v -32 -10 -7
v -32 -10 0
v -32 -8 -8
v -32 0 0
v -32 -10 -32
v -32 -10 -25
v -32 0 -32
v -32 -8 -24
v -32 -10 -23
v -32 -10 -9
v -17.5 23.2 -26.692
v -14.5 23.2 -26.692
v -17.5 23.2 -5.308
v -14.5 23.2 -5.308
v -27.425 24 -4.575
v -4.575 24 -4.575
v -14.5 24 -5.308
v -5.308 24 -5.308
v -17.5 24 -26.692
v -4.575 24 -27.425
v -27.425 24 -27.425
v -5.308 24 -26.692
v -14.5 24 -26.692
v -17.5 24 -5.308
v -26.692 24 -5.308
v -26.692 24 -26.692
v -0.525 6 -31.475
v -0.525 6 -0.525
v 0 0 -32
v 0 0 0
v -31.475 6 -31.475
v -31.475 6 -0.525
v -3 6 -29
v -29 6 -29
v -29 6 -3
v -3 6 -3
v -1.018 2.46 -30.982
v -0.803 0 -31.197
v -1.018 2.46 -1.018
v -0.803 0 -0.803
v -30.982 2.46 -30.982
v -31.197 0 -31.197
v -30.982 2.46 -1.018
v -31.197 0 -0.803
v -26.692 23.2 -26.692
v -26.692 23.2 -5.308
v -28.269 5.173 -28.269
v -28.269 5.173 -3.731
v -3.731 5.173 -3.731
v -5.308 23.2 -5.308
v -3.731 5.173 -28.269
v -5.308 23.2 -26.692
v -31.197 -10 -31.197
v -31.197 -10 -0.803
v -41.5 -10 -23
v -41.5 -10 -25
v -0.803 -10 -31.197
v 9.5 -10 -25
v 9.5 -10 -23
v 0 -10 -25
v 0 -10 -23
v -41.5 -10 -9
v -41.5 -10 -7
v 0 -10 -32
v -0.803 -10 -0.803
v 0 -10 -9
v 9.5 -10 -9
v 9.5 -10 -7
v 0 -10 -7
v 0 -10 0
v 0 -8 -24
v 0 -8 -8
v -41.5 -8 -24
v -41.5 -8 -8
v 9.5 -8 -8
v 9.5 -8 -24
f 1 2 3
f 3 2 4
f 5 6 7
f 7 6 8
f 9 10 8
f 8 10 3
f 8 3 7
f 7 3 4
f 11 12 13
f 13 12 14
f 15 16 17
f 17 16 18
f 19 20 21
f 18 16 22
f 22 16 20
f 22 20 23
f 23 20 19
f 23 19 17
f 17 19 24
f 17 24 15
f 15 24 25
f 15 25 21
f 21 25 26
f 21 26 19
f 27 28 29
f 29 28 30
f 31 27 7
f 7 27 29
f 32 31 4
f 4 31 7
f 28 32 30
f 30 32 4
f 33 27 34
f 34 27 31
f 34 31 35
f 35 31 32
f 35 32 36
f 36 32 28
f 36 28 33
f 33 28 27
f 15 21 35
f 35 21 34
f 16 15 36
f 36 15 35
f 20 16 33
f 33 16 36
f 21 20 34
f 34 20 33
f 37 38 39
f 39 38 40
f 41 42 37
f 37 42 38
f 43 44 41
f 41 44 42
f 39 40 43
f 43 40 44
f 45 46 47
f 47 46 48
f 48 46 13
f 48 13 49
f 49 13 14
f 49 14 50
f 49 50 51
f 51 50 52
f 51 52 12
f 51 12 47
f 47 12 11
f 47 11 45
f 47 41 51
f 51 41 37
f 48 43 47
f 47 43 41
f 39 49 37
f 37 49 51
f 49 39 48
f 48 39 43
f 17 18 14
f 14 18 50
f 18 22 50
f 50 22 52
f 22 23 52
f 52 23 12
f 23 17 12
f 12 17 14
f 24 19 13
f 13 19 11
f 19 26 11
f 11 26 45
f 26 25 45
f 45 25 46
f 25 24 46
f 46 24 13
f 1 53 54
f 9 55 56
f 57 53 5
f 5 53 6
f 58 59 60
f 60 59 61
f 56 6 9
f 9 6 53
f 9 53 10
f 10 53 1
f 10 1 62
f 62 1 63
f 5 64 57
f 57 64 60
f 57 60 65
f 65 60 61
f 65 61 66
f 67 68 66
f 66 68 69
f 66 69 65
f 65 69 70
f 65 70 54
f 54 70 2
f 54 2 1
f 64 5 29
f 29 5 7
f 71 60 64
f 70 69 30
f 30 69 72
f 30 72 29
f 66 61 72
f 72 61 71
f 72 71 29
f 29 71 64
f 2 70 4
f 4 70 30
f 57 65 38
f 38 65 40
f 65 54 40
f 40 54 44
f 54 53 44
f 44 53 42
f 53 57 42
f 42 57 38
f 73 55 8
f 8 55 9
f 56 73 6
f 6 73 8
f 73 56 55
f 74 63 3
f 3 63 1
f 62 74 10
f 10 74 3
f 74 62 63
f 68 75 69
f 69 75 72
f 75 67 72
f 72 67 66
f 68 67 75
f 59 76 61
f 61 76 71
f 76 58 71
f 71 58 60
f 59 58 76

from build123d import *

# Parameters (mm, degrees)
SKETCH1_W           = 32
SKETCH1_H           = 32
BOSS_EXTRUDE1_DEPTH = 6
BOSS_EXTRUDE1_TAPER = 5
SKETCH2_W           = 26
SKETCH2_H           = 26
BOSS_EXTRUDE2_DEPTH = 18
BOSS_EXTRUDE2_TAPER = 5
SHELL1_T            = -0.8
CHAMFER1_SIZE       = 2.5
CHAMFER1_SIZE_2     = 2.750157169
SKETCH3_W           = 9.192139117
SKETCH3_H           = 21.384278234
CUT_EXTRUDE1_DEPTH  = 51.855088412
SKETCH4_W           = 32
SKETCH4_H           = 32
SKETCH4_W_2         = 30.39388826
SKETCH4_H_2         = 30.39388826
BOSS_EXTRUDE3_DEPTH = 10
BOSS_EXTRUDE4_DEPTH = 9.5
BOSS_EXTRUDE5_START = -32
BOSS_EXTRUDE5_DEPTH = 9.5


with BuildPart() as part:
    # Sketch1 → Boss-Extrude1 (new body)
    with BuildSketch(Plane(origin=(0, 0, 0), x_dir=(1, 0, 0), z_dir=(0, 1, 0))):
        with Locations((-16, 16)):
            Rectangle(SKETCH1_W, SKETCH1_H)
    extrude(amount=BOSS_EXTRUDE1_DEPTH, taper=BOSS_EXTRUDE1_TAPER)

    # Sketch2 → Boss-Extrude2 (add)
    with BuildSketch(Plane(origin=(0, 6, 0), x_dir=(1, 0, 0), z_dir=(0, 1, 0))):
        with Locations((-16, 16)):
            Rectangle(SKETCH2_W, SKETCH2_H)
    extrude(amount=BOSS_EXTRUDE2_DEPTH, taper=BOSS_EXTRUDE2_TAPER)

    # Shell1
    shell1_openings = [part.faces().sort_by_distance(p)[0] for p in [
        (-16, 0, -16),
    ]]
    offset(amount=SHELL1_T, openings=shell1_openings, kind=Kind.INTERSECTION)

    # Chamfer1
    # the kernel refuses this chamfer: 2.750157169, 2.5 mm, written as the material it adds along each edge
    with BuildSketch(Plane(origin=(5.830274952, 5.2, -1.25799692), x_dir=(0, 0.030161850139926293, -0.9995450278982617), z_dir=(-1, 0, 0))) as chamfer1_piece_1_section:
        Polygon((CHAMFER1_SIZE * 0.999545027898, CHAMFER1_SIZE * 0.0301618501399), (-CHAMFER1_SIZE_2 * 0.117163164513, CHAMFER1_SIZE_2 * 0.993112678869), (0, 0), align=None)
    chamfer1_piece_1 = extrude(amount=43.660549905, mode=Mode.PRIVATE)
    chamfer1_piece_1 = split(chamfer1_piece_1, bisect_by=Plane(origin=(-1.2737044, 5.379537315, -3.779154262), z_dir=(-0.9961946980917455, -0.08715574274765792, 0)), keep=Keep.TOP, mode=Mode.PRIVATE)
    chamfer1_piece_1 = split(chamfer1_piece_1, bisect_by=Plane(origin=(-3.729971497, 5.164641789, -3.779154262), z_dir=(0.9961946980917455, 0.08715574274765821, 0)), keep=Keep.TOP, mode=Mode.PRIVATE)
    chamfer1_piece_1 = split(chamfer1_piece_1, bisect_by=Plane(origin=(-2.501837948, 5.275543614, -3.739674149), z_dir=(0, -0.08715574274765829, -0.9961946980917455)), keep=Keep.TOP, mode=Mode.PRIVATE)
    add(chamfer1_piece_1)
    with BuildSketch(Plane(origin=(5.830274952, 5.2, -1.25799692), x_dir=(0, 0.030161850139926293, -0.9995450278982617), z_dir=(-1, 0, 0))) as chamfer1_piece_2_section:
        Polygon((CHAMFER1_SIZE * 0.999545027898, CHAMFER1_SIZE * 0.0301618501399), (-CHAMFER1_SIZE_2 * 0.117163164513, CHAMFER1_SIZE_2 * 0.993112678869), (0, 0), align=None)
    chamfer1_piece_2 = extrude(amount=43.660549905, mode=Mode.PRIVATE)
    chamfer1_piece_2 = split(chamfer1_piece_2, bisect_by=Plane(origin=(-1.187972058, 4.399612159, -1.99521412), z_dir=(-0.9961946980917455, -0.08715574274765792, 0)), keep=Keep.TOP, mode=Mode.PRIVATE)
    chamfer1_piece_2 = split(chamfer1_piece_2, bisect_by=Plane(origin=(-3.644239154, 4.184716633, -1.99521412), z_dir=(0.9961946980917455, 0.08715574274765821, 0)), keep=Keep.TOP, mode=Mode.PRIVATE)
    chamfer1_piece_2 = split(chamfer1_piece_2, bisect_by=Plane(origin=(-2.416105606, 4.148173113, -3.641042011), z_dir=(0, 0.08715574274765829, 0.9961946980917455)), keep=Keep.TOP, mode=Mode.PRIVATE)
    add(chamfer1_piece_2)
    with BuildSketch(Plane(origin=(5.830274952, 5.2, -1.25799692), x_dir=(0, 0.030161850139926293, -0.9995450278982617), z_dir=(-1, 0, 0))) as chamfer1_piece_3_section:
        Polygon((CHAMFER1_SIZE * 0.999545027898, CHAMFER1_SIZE * 0.0301618501399), (-CHAMFER1_SIZE_2 * 0.117163164513, CHAMFER1_SIZE_2 * 0.993112678869), (0, 0), align=None)
    chamfer1_piece_3 = extrude(amount=43.660549905, mode=Mode.PRIVATE)
    chamfer1_piece_3 = split(chamfer1_piece_3, bisect_by=Plane(origin=(-3.747130429, 5.360769289, -1.993289961), z_dir=(-0.9961946980917455, -0.08715574274765821, 0)), keep=Keep.TOP, mode=Mode.PRIVATE)
    chamfer1_piece_3 = split(chamfer1_piece_3, bisect_by=Plane(origin=(-16, 4.144649452, -3.64073373), z_dir=(0, 0.08715574274765829, 0.9961946980917455)), keep=Keep.TOP, mode=Mode.PRIVATE)
    chamfer1_piece_3 = split(chamfer1_piece_3, bisect_by=Plane(origin=(-28.252869571, 5.360769289, -1.993289961), z_dir=(0.9961946980917455, -0.08715574274765829, 0)), keep=Keep.TOP, mode=Mode.PRIVATE)
    add(chamfer1_piece_3)
    with BuildSketch(Plane(origin=(5.830274952, 5.2, -1.25799692), x_dir=(0, 0.030161850139926293, -0.9995450278982617), z_dir=(-1, 0, 0))) as chamfer1_piece_4_section:
        Polygon((CHAMFER1_SIZE * 0.999545027898, CHAMFER1_SIZE * 0.0301618501399), (-CHAMFER1_SIZE_2 * 0.117163164513, CHAMFER1_SIZE_2 * 0.993112678869), (0, 0), align=None)
    chamfer1_piece_4 = extrude(amount=43.660549905, mode=Mode.PRIVATE)
    chamfer1_piece_4 = split(chamfer1_piece_4, bisect_by=Plane(origin=(-29.498162052, 5.275543614, -3.739674149), z_dir=(0, -0.08715574274765829, -0.9961946980917455)), keep=Keep.TOP, mode=Mode.PRIVATE)
    chamfer1_piece_4 = split(chamfer1_piece_4, bisect_by=Plane(origin=(-28.270028503, 5.164641789, -3.779154262), z_dir=(-0.9961946980917455, 0.08715574274765829, 0)), keep=Keep.TOP, mode=Mode.PRIVATE)
    chamfer1_piece_4 = split(chamfer1_piece_4, bisect_by=Plane(origin=(-30.7262956, 5.379537315, -3.779154262), z_dir=(0.9961946980917455, -0.08715574274765851, 0)), keep=Keep.TOP, mode=Mode.PRIVATE)
    add(chamfer1_piece_4)
    with BuildSketch(Plane(origin=(5.830274952, 5.2, -1.25799692), x_dir=(0, 0.030161850139926293, -0.9995450278982617), z_dir=(-1, 0, 0))) as chamfer1_piece_5_section:
        Polygon((CHAMFER1_SIZE * 0.999545027898, CHAMFER1_SIZE * 0.0301618501399), (-CHAMFER1_SIZE_2 * 0.117163164513, CHAMFER1_SIZE_2 * 0.993112678869), (0, 0), align=None)
    chamfer1_piece_5 = extrude(amount=43.660549905, mode=Mode.PRIVATE)
    chamfer1_piece_5 = split(chamfer1_piece_5, bisect_by=Plane(origin=(-29.583894394, 4.148173113, -3.641042011), z_dir=(0, 0.08715574274765829, 0.9961946980917455)), keep=Keep.TOP, mode=Mode.PRIVATE)
    chamfer1_piece_5 = split(chamfer1_piece_5, bisect_by=Plane(origin=(-28.355760846, 4.184716633, -1.99521412), z_dir=(-0.9961946980917455, 0.08715574274765829, 0)), keep=Keep.TOP, mode=Mode.PRIVATE)
    chamfer1_piece_5 = split(chamfer1_piece_5, bisect_by=Plane(origin=(-30.812027942, 4.399612159, -1.99521412), z_dir=(0.9961946980917455, -0.08715574274765851, 0)), keep=Keep.TOP, mode=Mode.PRIVATE)
    add(chamfer1_piece_5)
    with BuildSketch(Plane(origin=(-30.74200308, 5.2, 5.830274952), x_dir=(0.9995450278982617, 0.030161850139926356, 0), z_dir=(0, 0, -1))) as chamfer1_piece_6_section:
        Polygon((CHAMFER1_SIZE * 0.999545027898, CHAMFER1_SIZE * 0.0301618501399), (-CHAMFER1_SIZE_2 * 0.117163164513, CHAMFER1_SIZE_2 * 0.993112678869), (0, 0), align=None)
    chamfer1_piece_6 = extrude(amount=43.660549905, mode=Mode.PRIVATE)
    chamfer1_piece_6 = split(chamfer1_piece_6, bisect_by=Plane(origin=(-28.220845738, 5.164641789, -3.729971497), z_dir=(0, 0.08715574274765829, 0.9961946980917455)), keep=Keep.TOP, mode=Mode.PRIVATE)
    chamfer1_piece_6 = split(chamfer1_piece_6, bisect_by=Plane(origin=(-28.260325851, 5.275543614, -2.501837948), z_dir=(0.9961946980917455, -0.08715574274765829, 0)), keep=Keep.TOP, mode=Mode.PRIVATE)
    chamfer1_piece_6 = split(chamfer1_piece_6, bisect_by=Plane(origin=(-28.220845738, 5.379537315, -1.2737044), z_dir=(0, -0.08715574274765792, -0.9961946980917455)), keep=Keep.TOP, mode=Mode.PRIVATE)
    add(chamfer1_piece_6)
    with BuildSketch(Plane(origin=(-30.74200308, 5.2, 5.830274952), x_dir=(0.9995450278982617, 0.030161850139926356, 0), z_dir=(0, 0, -1))) as chamfer1_piece_7_section:
        Polygon((CHAMFER1_SIZE * 0.999545027898, CHAMFER1_SIZE * 0.0301618501399), (-CHAMFER1_SIZE_2 * 0.117163164513, CHAMFER1_SIZE_2 * 0.993112678869), (0, 0), align=None)
    chamfer1_piece_7 = extrude(amount=43.660549905, mode=Mode.PRIVATE)
    chamfer1_piece_7 = split(chamfer1_piece_7, bisect_by=Plane(origin=(-30.00478588, 4.184716633, -3.644239154), z_dir=(0, 0.08715574274765829, 0.9961946980917455)), keep=Keep.TOP, mode=Mode.PRIVATE)
    chamfer1_piece_7 = split(chamfer1_piece_7, bisect_by=Plane(origin=(-28.358957989, 4.148173113, -2.416105606), z_dir=(-0.9961946980917455, 0.08715574274765829, 0)), keep=Keep.TOP, mode=Mode.PRIVATE)
    chamfer1_piece_7 = split(chamfer1_piece_7, bisect_by=Plane(origin=(-30.00478588, 4.399612159, -1.187972058), z_dir=(0, -0.08715574274765792, -0.9961946980917455)), keep=Keep.TOP, mode=Mode.PRIVATE)
    add(chamfer1_piece_7)
    with BuildSketch(Plane(origin=(-30.74200308, 5.2, 5.830274952), x_dir=(0.9995450278982617, 0.030161850139926356, 0), z_dir=(0, 0, -1))) as chamfer1_piece_8_section:
        Polygon((CHAMFER1_SIZE * 0.999545027898, CHAMFER1_SIZE * 0.0301618501399), (-CHAMFER1_SIZE_2 * 0.117163164513, CHAMFER1_SIZE_2 * 0.993112678869), (0, 0), align=None)
    chamfer1_piece_8 = extrude(amount=43.660549905, mode=Mode.PRIVATE)
    chamfer1_piece_8 = split(chamfer1_piece_8, bisect_by=Plane(origin=(-30.006710039, 5.360769289, -28.252869571), z_dir=(0, -0.08715574274765829, 0.9961946980917455)), keep=Keep.TOP, mode=Mode.PRIVATE)
    chamfer1_piece_8 = split(chamfer1_piece_8, bisect_by=Plane(origin=(-30.006710039, 5.360769289, -3.747130429), z_dir=(0, -0.08715574274765829, -0.9961946980917455)), keep=Keep.TOP, mode=Mode.PRIVATE)
    chamfer1_piece_8 = split(chamfer1_piece_8, bisect_by=Plane(origin=(-28.35926627, 4.144649452, -16), z_dir=(-0.9961946980917455, 0.08715574274765829, 0)), keep=Keep.TOP, mode=Mode.PRIVATE)
    add(chamfer1_piece_8)
    with BuildSketch(Plane(origin=(-30.74200308, 5.2, 5.830274952), x_dir=(0.9995450278982617, 0.030161850139926356, 0), z_dir=(0, 0, -1))) as chamfer1_piece_9_section:
        Polygon((CHAMFER1_SIZE * 0.999545027898, CHAMFER1_SIZE * 0.0301618501399), (-CHAMFER1_SIZE_2 * 0.117163164513, CHAMFER1_SIZE_2 * 0.993112678869), (0, 0), align=None)
    chamfer1_piece_9 = extrude(amount=43.660549905, mode=Mode.PRIVATE)
    chamfer1_piece_9 = split(chamfer1_piece_9, bisect_by=Plane(origin=(-28.220845738, 5.379537315, -30.7262956), z_dir=(0, -0.08715574274765836, 0.9961946980917455)), keep=Keep.TOP, mode=Mode.PRIVATE)
    chamfer1_piece_9 = split(chamfer1_piece_9, bisect_by=Plane(origin=(-28.220845738, 5.164641789, -28.270028503), z_dir=(0, 0.08715574274765829, -0.9961946980917455)), keep=Keep.TOP, mode=Mode.PRIVATE)
    chamfer1_piece_9 = split(chamfer1_piece_9, bisect_by=Plane(origin=(-28.260325851, 5.275543614, -29.498162052), z_dir=(0.9961946980917455, -0.08715574274765829, 0)), keep=Keep.TOP, mode=Mode.PRIVATE)
    add(chamfer1_piece_9)
    with BuildSketch(Plane(origin=(-30.74200308, 5.2, 5.830274952), x_dir=(0.9995450278982617, 0.030161850139926356, 0), z_dir=(0, 0, -1))) as chamfer1_piece_10_section:
        Polygon((CHAMFER1_SIZE * 0.999545027898, CHAMFER1_SIZE * 0.0301618501399), (-CHAMFER1_SIZE_2 * 0.117163164513, CHAMFER1_SIZE_2 * 0.993112678869), (0, 0), align=None)
    chamfer1_piece_10 = extrude(amount=43.660549905, mode=Mode.PRIVATE)
    chamfer1_piece_10 = split(chamfer1_piece_10, bisect_by=Plane(origin=(-30.00478588, 4.399612159, -30.812027942), z_dir=(0, -0.08715574274765836, 0.9961946980917455)), keep=Keep.TOP, mode=Mode.PRIVATE)
    chamfer1_piece_10 = split(chamfer1_piece_10, bisect_by=Plane(origin=(-30.00478588, 4.184716633, -28.355760846), z_dir=(0, 0.08715574274765829, -0.9961946980917455)), keep=Keep.TOP, mode=Mode.PRIVATE)
    chamfer1_piece_10 = split(chamfer1_piece_10, bisect_by=Plane(origin=(-28.358957989, 4.148173113, -29.583894394), z_dir=(-0.9961946980917455, 0.08715574274765829, 0)), keep=Keep.TOP, mode=Mode.PRIVATE)
    add(chamfer1_piece_10)
    with BuildSketch(Plane(origin=(5.830274952, 5.2, -30.74200308), x_dir=(0, -0.9937112432628153, -0.11197305485280758), z_dir=(-1, 0, 0))) as chamfer1_piece_11_section:
        Polygon((CHAMFER1_SIZE_2 * 0.99968896676, CHAMFER1_SIZE_2 * 0.0249393220908), (-CHAMFER1_SIZE * 0.111973054853, CHAMFER1_SIZE * 0.993711243263), (0, 0), align=None)
    chamfer1_piece_11 = extrude(amount=43.660549905, mode=Mode.PRIVATE)
    chamfer1_piece_11 = split(chamfer1_piece_11, bisect_by=Plane(origin=(-1.187972058, 4.399612159, -30.00478588), z_dir=(-0.9961946980917455, -0.08715574274765792, 0)), keep=Keep.TOP, mode=Mode.PRIVATE)
    chamfer1_piece_11 = split(chamfer1_piece_11, bisect_by=Plane(origin=(-2.416105606, 4.148173113, -28.358957989), z_dir=(0, 0.08715574274765829, -0.9961946980917455)), keep=Keep.TOP, mode=Mode.PRIVATE)
    chamfer1_piece_11 = split(chamfer1_piece_11, bisect_by=Plane(origin=(-3.644239154, 4.184716633, -30.00478588), z_dir=(0.9961946980917455, 0.08715574274765821, 0)), keep=Keep.TOP, mode=Mode.PRIVATE)
    add(chamfer1_piece_11)
    with BuildSketch(Plane(origin=(5.830274952, 5.2, -30.74200308), x_dir=(0, -0.9937112432628153, -0.11197305485280758), z_dir=(-1, 0, 0))) as chamfer1_piece_12_section:
        Polygon((CHAMFER1_SIZE_2 * 0.99968896676, CHAMFER1_SIZE_2 * 0.0249393220908), (-CHAMFER1_SIZE * 0.111973054853, CHAMFER1_SIZE * 0.993711243263), (0, 0), align=None)
    chamfer1_piece_12 = extrude(amount=43.660549905, mode=Mode.PRIVATE)
    chamfer1_piece_12 = split(chamfer1_piece_12, bisect_by=Plane(origin=(-1.2737044, 5.379537315, -28.220845738), z_dir=(-0.9961946980917455, -0.08715574274765792, 0)), keep=Keep.TOP, mode=Mode.PRIVATE)
    chamfer1_piece_12 = split(chamfer1_piece_12, bisect_by=Plane(origin=(-2.501837948, 5.275543614, -28.260325851), z_dir=(0, -0.08715574274765829, 0.9961946980917455)), keep=Keep.TOP, mode=Mode.PRIVATE)
    chamfer1_piece_12 = split(chamfer1_piece_12, bisect_by=Plane(origin=(-3.729971497, 5.164641789, -28.220845738), z_dir=(0.9961946980917455, 0.08715574274765821, 0)), keep=Keep.TOP, mode=Mode.PRIVATE)
    add(chamfer1_piece_12)
    with BuildSketch(Plane(origin=(5.830274952, 5.2, -30.74200308), x_dir=(0, -0.9937112432628153, -0.11197305485280758), z_dir=(-1, 0, 0))) as chamfer1_piece_13_section:
        Polygon((CHAMFER1_SIZE_2 * 0.99968896676, CHAMFER1_SIZE_2 * 0.0249393220908), (-CHAMFER1_SIZE * 0.111973054853, CHAMFER1_SIZE * 0.993711243263), (0, 0), align=None)
    chamfer1_piece_13 = extrude(amount=43.660549905, mode=Mode.PRIVATE)
    chamfer1_piece_13 = split(chamfer1_piece_13, bisect_by=Plane(origin=(-16, 4.144649452, -28.35926627), z_dir=(0, 0.08715574274765829, -0.9961946980917455)), keep=Keep.TOP, mode=Mode.PRIVATE)
    chamfer1_piece_13 = split(chamfer1_piece_13, bisect_by=Plane(origin=(-3.747130429, 5.360769289, -30.006710039), z_dir=(-0.9961946980917455, -0.08715574274765821, 0)), keep=Keep.TOP, mode=Mode.PRIVATE)
    chamfer1_piece_13 = split(chamfer1_piece_13, bisect_by=Plane(origin=(-28.252869571, 5.360769289, -30.006710039), z_dir=(0.9961946980917455, -0.08715574274765829, 0)), keep=Keep.TOP, mode=Mode.PRIVATE)
    add(chamfer1_piece_13)
    with BuildSketch(Plane(origin=(5.830274952, 5.2, -30.74200308), x_dir=(0, -0.9937112432628153, -0.11197305485280758), z_dir=(-1, 0, 0))) as chamfer1_piece_14_section:
        Polygon((CHAMFER1_SIZE_2 * 0.99968896676, CHAMFER1_SIZE_2 * 0.0249393220908), (-CHAMFER1_SIZE * 0.111973054853, CHAMFER1_SIZE * 0.993711243263), (0, 0), align=None)
    chamfer1_piece_14 = extrude(amount=43.660549905, mode=Mode.PRIVATE)
    chamfer1_piece_14 = split(chamfer1_piece_14, bisect_by=Plane(origin=(-30.812027942, 4.399612159, -30.00478588), z_dir=(0.9961946980917455, -0.08715574274765851, 0)), keep=Keep.TOP, mode=Mode.PRIVATE)
    chamfer1_piece_14 = split(chamfer1_piece_14, bisect_by=Plane(origin=(-29.583894394, 4.148173113, -28.358957989), z_dir=(0, 0.08715574274765829, -0.9961946980917455)), keep=Keep.TOP, mode=Mode.PRIVATE)
    chamfer1_piece_14 = split(chamfer1_piece_14, bisect_by=Plane(origin=(-28.355760846, 4.184716633, -30.00478588), z_dir=(-0.9961946980917455, 0.08715574274765829, 0)), keep=Keep.TOP, mode=Mode.PRIVATE)
    add(chamfer1_piece_14)
    with BuildSketch(Plane(origin=(5.830274952, 5.2, -30.74200308), x_dir=(0, -0.9937112432628153, -0.11197305485280758), z_dir=(-1, 0, 0))) as chamfer1_piece_15_section:
        Polygon((CHAMFER1_SIZE_2 * 0.99968896676, CHAMFER1_SIZE_2 * 0.0249393220908), (-CHAMFER1_SIZE * 0.111973054853, CHAMFER1_SIZE * 0.993711243263), (0, 0), align=None)
    chamfer1_piece_15 = extrude(amount=43.660549905, mode=Mode.PRIVATE)
    chamfer1_piece_15 = split(chamfer1_piece_15, bisect_by=Plane(origin=(-30.7262956, 5.379537315, -28.220845738), z_dir=(0.9961946980917455, -0.08715574274765851, 0)), keep=Keep.TOP, mode=Mode.PRIVATE)
    chamfer1_piece_15 = split(chamfer1_piece_15, bisect_by=Plane(origin=(-29.498162052, 5.275543614, -28.260325851), z_dir=(0, -0.08715574274765829, 0.9961946980917455)), keep=Keep.TOP, mode=Mode.PRIVATE)
    chamfer1_piece_15 = split(chamfer1_piece_15, bisect_by=Plane(origin=(-28.270028503, 5.164641789, -28.220845738), z_dir=(-0.9961946980917455, 0.08715574274765829, 0)), keep=Keep.TOP, mode=Mode.PRIVATE)
    add(chamfer1_piece_15)
    with BuildSketch(Plane(origin=(-1.25799692, 5.2, 5.830274952), x_dir=(0.11197305485280797, -0.9937112432628151, 0), z_dir=(0, 0, -1))) as chamfer1_piece_16_section:
        Polygon((CHAMFER1_SIZE_2 * 0.99968896676, CHAMFER1_SIZE_2 * 0.0249393220908), (-CHAMFER1_SIZE * 0.111973054853, CHAMFER1_SIZE * 0.993711243263), (0, 0), align=None)
    chamfer1_piece_16 = extrude(amount=43.660549905, mode=Mode.PRIVATE)
    chamfer1_piece_16 = split(chamfer1_piece_16, bisect_by=Plane(origin=(-1.99521412, 4.399612159, -1.187972058), z_dir=(0, -0.08715574274765792, -0.9961946980917455)), keep=Keep.TOP, mode=Mode.PRIVATE)
    chamfer1_piece_16 = split(chamfer1_piece_16, bisect_by=Plane(origin=(-3.641042011, 4.148173113, -2.416105606), z_dir=(0.9961946980917455, 0.08715574274765821, 0)), keep=Keep.TOP, mode=Mode.PRIVATE)
    chamfer1_piece_16 = split(chamfer1_piece_16, bisect_by=Plane(origin=(-1.99521412, 4.184716633, -3.644239154), z_dir=(0, 0.08715574274765829, 0.9961946980917455)), keep=Keep.TOP, mode=Mode.PRIVATE)
    add(chamfer1_piece_16)
    with BuildSketch(Plane(origin=(-1.25799692, 5.2, 5.830274952), x_dir=(0.11197305485280797, -0.9937112432628151, 0), z_dir=(0, 0, -1))) as chamfer1_piece_17_section:
        Polygon((CHAMFER1_SIZE_2 * 0.99968896676, CHAMFER1_SIZE_2 * 0.0249393220908), (-CHAMFER1_SIZE * 0.111973054853, CHAMFER1_SIZE * 0.993711243263), (0, 0), align=None)
    chamfer1_piece_17 = extrude(amount=43.660549905, mode=Mode.PRIVATE)
    chamfer1_piece_17 = split(chamfer1_piece_17, bisect_by=Plane(origin=(-3.779154262, 5.379537315, -1.2737044), z_dir=(0, -0.08715574274765792, -0.9961946980917455)), keep=Keep.TOP, mode=Mode.PRIVATE)
    chamfer1_piece_17 = split(chamfer1_piece_17, bisect_by=Plane(origin=(-3.739674149, 5.275543614, -2.501837948), z_dir=(-0.9961946980917455, -0.08715574274765821, 0)), keep=Keep.TOP, mode=Mode.PRIVATE)
    chamfer1_piece_17 = split(chamfer1_piece_17, bisect_by=Plane(origin=(-3.779154262, 5.164641789, -3.729971497), z_dir=(0, 0.08715574274765829, 0.9961946980917455)), keep=Keep.TOP, mode=Mode.PRIVATE)
    add(chamfer1_piece_17)
    with BuildSketch(Plane(origin=(-1.25799692, 5.2, 5.830274952), x_dir=(0.11197305485280797, -0.9937112432628151, 0), z_dir=(0, 0, -1))) as chamfer1_piece_18_section:
        Polygon((CHAMFER1_SIZE_2 * 0.99968896676, CHAMFER1_SIZE_2 * 0.0249393220908), (-CHAMFER1_SIZE * 0.111973054853, CHAMFER1_SIZE * 0.993711243263), (0, 0), align=None)
    chamfer1_piece_18 = extrude(amount=43.660549905, mode=Mode.PRIVATE)
    chamfer1_piece_18 = split(chamfer1_piece_18, bisect_by=Plane(origin=(-1.993289961, 5.360769289, -28.252869571), z_dir=(0, -0.08715574274765829, 0.9961946980917455)), keep=Keep.TOP, mode=Mode.PRIVATE)
    chamfer1_piece_18 = split(chamfer1_piece_18, bisect_by=Plane(origin=(-3.64073373, 4.144649452, -16), z_dir=(0.9961946980917455, 0.08715574274765821, 0)), keep=Keep.TOP, mode=Mode.PRIVATE)
    chamfer1_piece_18 = split(chamfer1_piece_18, bisect_by=Plane(origin=(-1.993289961, 5.360769289, -3.747130429), z_dir=(0, -0.08715574274765829, -0.9961946980917455)), keep=Keep.TOP, mode=Mode.PRIVATE)
    add(chamfer1_piece_18)
    with BuildSketch(Plane(origin=(-1.25799692, 5.2, 5.830274952), x_dir=(0.11197305485280797, -0.9937112432628151, 0), z_dir=(0, 0, -1))) as chamfer1_piece_19_section:
        Polygon((CHAMFER1_SIZE_2 * 0.99968896676, CHAMFER1_SIZE_2 * 0.0249393220908), (-CHAMFER1_SIZE * 0.111973054853, CHAMFER1_SIZE * 0.993711243263), (0, 0), align=None)
    chamfer1_piece_19 = extrude(amount=43.660549905, mode=Mode.PRIVATE)
    chamfer1_piece_19 = split(chamfer1_piece_19, bisect_by=Plane(origin=(-1.99521412, 4.399612159, -30.812027942), z_dir=(0, -0.08715574274765836, 0.9961946980917455)), keep=Keep.TOP, mode=Mode.PRIVATE)
    chamfer1_piece_19 = split(chamfer1_piece_19, bisect_by=Plane(origin=(-1.99521412, 4.184716633, -28.355760846), z_dir=(0, 0.08715574274765829, -0.9961946980917455)), keep=Keep.TOP, mode=Mode.PRIVATE)
    chamfer1_piece_19 = split(chamfer1_piece_19, bisect_by=Plane(origin=(-3.641042011, 4.148173113, -29.583894394), z_dir=(0.9961946980917455, 0.08715574274765821, 0)), keep=Keep.TOP, mode=Mode.PRIVATE)
    add(chamfer1_piece_19)
    with BuildSketch(Plane(origin=(-1.25799692, 5.2, 5.830274952), x_dir=(0.11197305485280797, -0.9937112432628151, 0), z_dir=(0, 0, -1))) as chamfer1_piece_20_section:
        Polygon((CHAMFER1_SIZE_2 * 0.99968896676, CHAMFER1_SIZE_2 * 0.0249393220908), (-CHAMFER1_SIZE * 0.111973054853, CHAMFER1_SIZE * 0.993711243263), (0, 0), align=None)
    chamfer1_piece_20 = extrude(amount=43.660549905, mode=Mode.PRIVATE)
    chamfer1_piece_20 = split(chamfer1_piece_20, bisect_by=Plane(origin=(-3.779154262, 5.379537315, -30.7262956), z_dir=(0, -0.08715574274765836, 0.9961946980917455)), keep=Keep.TOP, mode=Mode.PRIVATE)
    chamfer1_piece_20 = split(chamfer1_piece_20, bisect_by=Plane(origin=(-3.779154262, 5.164641789, -28.270028503), z_dir=(0, 0.08715574274765829, -0.9961946980917455)), keep=Keep.TOP, mode=Mode.PRIVATE)
    chamfer1_piece_20 = split(chamfer1_piece_20, bisect_by=Plane(origin=(-3.739674149, 5.275543614, -29.498162052), z_dir=(-0.9961946980917455, -0.08715574274765821, 0)), keep=Keep.TOP, mode=Mode.PRIVATE)
    add(chamfer1_piece_20)

    # Sketch3 → Cut-Extrude1 (cut, through all)
    with BuildSketch(Plane.XZ.offset(-23.2)):
        with Locations((-22.096069558, -16)):
            Rectangle(SKETCH3_W, SKETCH3_H)
        with Locations((-9.903930442, -16)):
            Rectangle(SKETCH3_W, SKETCH3_H)
    extrude(amount=-CUT_EXTRUDE1_DEPTH, mode=Mode.SUBTRACT)

    # Sketch4 → Boss-Extrude3 (add)
    with BuildSketch(Plane.XZ):
        with Locations((-16, -16)):
            Rectangle(SKETCH4_W, SKETCH4_H)
        with Locations((-16, -16)):
            Rectangle(SKETCH4_W_2, SKETCH4_H_2, mode=Mode.SUBTRACT)
    extrude(amount=BOSS_EXTRUDE3_DEPTH)

    # Sketch5 → Boss-Extrude4 (add)
    with BuildSketch(Plane.ZY.offset(32)):
        Polygon((-24, -8), (-25, -10), (-23, -10), align=None)
        Polygon((-8, -8), (-9, -10), (-7, -10), align=None)
    extrude(amount=BOSS_EXTRUDE4_DEPTH)

    # Sketch5<3> → Boss-Extrude5 (add)
    with BuildSketch(Plane.ZY.offset(32).offset(BOSS_EXTRUDE5_START)):
        Polygon((-8, -8), (-9, -10), (-7, -10), align=None)
        Polygon((-24, -8), (-25, -10), (-23, -10), align=None)
    extrude(amount=-BOSS_EXTRUDE5_DEPTH)


solid = part.part
